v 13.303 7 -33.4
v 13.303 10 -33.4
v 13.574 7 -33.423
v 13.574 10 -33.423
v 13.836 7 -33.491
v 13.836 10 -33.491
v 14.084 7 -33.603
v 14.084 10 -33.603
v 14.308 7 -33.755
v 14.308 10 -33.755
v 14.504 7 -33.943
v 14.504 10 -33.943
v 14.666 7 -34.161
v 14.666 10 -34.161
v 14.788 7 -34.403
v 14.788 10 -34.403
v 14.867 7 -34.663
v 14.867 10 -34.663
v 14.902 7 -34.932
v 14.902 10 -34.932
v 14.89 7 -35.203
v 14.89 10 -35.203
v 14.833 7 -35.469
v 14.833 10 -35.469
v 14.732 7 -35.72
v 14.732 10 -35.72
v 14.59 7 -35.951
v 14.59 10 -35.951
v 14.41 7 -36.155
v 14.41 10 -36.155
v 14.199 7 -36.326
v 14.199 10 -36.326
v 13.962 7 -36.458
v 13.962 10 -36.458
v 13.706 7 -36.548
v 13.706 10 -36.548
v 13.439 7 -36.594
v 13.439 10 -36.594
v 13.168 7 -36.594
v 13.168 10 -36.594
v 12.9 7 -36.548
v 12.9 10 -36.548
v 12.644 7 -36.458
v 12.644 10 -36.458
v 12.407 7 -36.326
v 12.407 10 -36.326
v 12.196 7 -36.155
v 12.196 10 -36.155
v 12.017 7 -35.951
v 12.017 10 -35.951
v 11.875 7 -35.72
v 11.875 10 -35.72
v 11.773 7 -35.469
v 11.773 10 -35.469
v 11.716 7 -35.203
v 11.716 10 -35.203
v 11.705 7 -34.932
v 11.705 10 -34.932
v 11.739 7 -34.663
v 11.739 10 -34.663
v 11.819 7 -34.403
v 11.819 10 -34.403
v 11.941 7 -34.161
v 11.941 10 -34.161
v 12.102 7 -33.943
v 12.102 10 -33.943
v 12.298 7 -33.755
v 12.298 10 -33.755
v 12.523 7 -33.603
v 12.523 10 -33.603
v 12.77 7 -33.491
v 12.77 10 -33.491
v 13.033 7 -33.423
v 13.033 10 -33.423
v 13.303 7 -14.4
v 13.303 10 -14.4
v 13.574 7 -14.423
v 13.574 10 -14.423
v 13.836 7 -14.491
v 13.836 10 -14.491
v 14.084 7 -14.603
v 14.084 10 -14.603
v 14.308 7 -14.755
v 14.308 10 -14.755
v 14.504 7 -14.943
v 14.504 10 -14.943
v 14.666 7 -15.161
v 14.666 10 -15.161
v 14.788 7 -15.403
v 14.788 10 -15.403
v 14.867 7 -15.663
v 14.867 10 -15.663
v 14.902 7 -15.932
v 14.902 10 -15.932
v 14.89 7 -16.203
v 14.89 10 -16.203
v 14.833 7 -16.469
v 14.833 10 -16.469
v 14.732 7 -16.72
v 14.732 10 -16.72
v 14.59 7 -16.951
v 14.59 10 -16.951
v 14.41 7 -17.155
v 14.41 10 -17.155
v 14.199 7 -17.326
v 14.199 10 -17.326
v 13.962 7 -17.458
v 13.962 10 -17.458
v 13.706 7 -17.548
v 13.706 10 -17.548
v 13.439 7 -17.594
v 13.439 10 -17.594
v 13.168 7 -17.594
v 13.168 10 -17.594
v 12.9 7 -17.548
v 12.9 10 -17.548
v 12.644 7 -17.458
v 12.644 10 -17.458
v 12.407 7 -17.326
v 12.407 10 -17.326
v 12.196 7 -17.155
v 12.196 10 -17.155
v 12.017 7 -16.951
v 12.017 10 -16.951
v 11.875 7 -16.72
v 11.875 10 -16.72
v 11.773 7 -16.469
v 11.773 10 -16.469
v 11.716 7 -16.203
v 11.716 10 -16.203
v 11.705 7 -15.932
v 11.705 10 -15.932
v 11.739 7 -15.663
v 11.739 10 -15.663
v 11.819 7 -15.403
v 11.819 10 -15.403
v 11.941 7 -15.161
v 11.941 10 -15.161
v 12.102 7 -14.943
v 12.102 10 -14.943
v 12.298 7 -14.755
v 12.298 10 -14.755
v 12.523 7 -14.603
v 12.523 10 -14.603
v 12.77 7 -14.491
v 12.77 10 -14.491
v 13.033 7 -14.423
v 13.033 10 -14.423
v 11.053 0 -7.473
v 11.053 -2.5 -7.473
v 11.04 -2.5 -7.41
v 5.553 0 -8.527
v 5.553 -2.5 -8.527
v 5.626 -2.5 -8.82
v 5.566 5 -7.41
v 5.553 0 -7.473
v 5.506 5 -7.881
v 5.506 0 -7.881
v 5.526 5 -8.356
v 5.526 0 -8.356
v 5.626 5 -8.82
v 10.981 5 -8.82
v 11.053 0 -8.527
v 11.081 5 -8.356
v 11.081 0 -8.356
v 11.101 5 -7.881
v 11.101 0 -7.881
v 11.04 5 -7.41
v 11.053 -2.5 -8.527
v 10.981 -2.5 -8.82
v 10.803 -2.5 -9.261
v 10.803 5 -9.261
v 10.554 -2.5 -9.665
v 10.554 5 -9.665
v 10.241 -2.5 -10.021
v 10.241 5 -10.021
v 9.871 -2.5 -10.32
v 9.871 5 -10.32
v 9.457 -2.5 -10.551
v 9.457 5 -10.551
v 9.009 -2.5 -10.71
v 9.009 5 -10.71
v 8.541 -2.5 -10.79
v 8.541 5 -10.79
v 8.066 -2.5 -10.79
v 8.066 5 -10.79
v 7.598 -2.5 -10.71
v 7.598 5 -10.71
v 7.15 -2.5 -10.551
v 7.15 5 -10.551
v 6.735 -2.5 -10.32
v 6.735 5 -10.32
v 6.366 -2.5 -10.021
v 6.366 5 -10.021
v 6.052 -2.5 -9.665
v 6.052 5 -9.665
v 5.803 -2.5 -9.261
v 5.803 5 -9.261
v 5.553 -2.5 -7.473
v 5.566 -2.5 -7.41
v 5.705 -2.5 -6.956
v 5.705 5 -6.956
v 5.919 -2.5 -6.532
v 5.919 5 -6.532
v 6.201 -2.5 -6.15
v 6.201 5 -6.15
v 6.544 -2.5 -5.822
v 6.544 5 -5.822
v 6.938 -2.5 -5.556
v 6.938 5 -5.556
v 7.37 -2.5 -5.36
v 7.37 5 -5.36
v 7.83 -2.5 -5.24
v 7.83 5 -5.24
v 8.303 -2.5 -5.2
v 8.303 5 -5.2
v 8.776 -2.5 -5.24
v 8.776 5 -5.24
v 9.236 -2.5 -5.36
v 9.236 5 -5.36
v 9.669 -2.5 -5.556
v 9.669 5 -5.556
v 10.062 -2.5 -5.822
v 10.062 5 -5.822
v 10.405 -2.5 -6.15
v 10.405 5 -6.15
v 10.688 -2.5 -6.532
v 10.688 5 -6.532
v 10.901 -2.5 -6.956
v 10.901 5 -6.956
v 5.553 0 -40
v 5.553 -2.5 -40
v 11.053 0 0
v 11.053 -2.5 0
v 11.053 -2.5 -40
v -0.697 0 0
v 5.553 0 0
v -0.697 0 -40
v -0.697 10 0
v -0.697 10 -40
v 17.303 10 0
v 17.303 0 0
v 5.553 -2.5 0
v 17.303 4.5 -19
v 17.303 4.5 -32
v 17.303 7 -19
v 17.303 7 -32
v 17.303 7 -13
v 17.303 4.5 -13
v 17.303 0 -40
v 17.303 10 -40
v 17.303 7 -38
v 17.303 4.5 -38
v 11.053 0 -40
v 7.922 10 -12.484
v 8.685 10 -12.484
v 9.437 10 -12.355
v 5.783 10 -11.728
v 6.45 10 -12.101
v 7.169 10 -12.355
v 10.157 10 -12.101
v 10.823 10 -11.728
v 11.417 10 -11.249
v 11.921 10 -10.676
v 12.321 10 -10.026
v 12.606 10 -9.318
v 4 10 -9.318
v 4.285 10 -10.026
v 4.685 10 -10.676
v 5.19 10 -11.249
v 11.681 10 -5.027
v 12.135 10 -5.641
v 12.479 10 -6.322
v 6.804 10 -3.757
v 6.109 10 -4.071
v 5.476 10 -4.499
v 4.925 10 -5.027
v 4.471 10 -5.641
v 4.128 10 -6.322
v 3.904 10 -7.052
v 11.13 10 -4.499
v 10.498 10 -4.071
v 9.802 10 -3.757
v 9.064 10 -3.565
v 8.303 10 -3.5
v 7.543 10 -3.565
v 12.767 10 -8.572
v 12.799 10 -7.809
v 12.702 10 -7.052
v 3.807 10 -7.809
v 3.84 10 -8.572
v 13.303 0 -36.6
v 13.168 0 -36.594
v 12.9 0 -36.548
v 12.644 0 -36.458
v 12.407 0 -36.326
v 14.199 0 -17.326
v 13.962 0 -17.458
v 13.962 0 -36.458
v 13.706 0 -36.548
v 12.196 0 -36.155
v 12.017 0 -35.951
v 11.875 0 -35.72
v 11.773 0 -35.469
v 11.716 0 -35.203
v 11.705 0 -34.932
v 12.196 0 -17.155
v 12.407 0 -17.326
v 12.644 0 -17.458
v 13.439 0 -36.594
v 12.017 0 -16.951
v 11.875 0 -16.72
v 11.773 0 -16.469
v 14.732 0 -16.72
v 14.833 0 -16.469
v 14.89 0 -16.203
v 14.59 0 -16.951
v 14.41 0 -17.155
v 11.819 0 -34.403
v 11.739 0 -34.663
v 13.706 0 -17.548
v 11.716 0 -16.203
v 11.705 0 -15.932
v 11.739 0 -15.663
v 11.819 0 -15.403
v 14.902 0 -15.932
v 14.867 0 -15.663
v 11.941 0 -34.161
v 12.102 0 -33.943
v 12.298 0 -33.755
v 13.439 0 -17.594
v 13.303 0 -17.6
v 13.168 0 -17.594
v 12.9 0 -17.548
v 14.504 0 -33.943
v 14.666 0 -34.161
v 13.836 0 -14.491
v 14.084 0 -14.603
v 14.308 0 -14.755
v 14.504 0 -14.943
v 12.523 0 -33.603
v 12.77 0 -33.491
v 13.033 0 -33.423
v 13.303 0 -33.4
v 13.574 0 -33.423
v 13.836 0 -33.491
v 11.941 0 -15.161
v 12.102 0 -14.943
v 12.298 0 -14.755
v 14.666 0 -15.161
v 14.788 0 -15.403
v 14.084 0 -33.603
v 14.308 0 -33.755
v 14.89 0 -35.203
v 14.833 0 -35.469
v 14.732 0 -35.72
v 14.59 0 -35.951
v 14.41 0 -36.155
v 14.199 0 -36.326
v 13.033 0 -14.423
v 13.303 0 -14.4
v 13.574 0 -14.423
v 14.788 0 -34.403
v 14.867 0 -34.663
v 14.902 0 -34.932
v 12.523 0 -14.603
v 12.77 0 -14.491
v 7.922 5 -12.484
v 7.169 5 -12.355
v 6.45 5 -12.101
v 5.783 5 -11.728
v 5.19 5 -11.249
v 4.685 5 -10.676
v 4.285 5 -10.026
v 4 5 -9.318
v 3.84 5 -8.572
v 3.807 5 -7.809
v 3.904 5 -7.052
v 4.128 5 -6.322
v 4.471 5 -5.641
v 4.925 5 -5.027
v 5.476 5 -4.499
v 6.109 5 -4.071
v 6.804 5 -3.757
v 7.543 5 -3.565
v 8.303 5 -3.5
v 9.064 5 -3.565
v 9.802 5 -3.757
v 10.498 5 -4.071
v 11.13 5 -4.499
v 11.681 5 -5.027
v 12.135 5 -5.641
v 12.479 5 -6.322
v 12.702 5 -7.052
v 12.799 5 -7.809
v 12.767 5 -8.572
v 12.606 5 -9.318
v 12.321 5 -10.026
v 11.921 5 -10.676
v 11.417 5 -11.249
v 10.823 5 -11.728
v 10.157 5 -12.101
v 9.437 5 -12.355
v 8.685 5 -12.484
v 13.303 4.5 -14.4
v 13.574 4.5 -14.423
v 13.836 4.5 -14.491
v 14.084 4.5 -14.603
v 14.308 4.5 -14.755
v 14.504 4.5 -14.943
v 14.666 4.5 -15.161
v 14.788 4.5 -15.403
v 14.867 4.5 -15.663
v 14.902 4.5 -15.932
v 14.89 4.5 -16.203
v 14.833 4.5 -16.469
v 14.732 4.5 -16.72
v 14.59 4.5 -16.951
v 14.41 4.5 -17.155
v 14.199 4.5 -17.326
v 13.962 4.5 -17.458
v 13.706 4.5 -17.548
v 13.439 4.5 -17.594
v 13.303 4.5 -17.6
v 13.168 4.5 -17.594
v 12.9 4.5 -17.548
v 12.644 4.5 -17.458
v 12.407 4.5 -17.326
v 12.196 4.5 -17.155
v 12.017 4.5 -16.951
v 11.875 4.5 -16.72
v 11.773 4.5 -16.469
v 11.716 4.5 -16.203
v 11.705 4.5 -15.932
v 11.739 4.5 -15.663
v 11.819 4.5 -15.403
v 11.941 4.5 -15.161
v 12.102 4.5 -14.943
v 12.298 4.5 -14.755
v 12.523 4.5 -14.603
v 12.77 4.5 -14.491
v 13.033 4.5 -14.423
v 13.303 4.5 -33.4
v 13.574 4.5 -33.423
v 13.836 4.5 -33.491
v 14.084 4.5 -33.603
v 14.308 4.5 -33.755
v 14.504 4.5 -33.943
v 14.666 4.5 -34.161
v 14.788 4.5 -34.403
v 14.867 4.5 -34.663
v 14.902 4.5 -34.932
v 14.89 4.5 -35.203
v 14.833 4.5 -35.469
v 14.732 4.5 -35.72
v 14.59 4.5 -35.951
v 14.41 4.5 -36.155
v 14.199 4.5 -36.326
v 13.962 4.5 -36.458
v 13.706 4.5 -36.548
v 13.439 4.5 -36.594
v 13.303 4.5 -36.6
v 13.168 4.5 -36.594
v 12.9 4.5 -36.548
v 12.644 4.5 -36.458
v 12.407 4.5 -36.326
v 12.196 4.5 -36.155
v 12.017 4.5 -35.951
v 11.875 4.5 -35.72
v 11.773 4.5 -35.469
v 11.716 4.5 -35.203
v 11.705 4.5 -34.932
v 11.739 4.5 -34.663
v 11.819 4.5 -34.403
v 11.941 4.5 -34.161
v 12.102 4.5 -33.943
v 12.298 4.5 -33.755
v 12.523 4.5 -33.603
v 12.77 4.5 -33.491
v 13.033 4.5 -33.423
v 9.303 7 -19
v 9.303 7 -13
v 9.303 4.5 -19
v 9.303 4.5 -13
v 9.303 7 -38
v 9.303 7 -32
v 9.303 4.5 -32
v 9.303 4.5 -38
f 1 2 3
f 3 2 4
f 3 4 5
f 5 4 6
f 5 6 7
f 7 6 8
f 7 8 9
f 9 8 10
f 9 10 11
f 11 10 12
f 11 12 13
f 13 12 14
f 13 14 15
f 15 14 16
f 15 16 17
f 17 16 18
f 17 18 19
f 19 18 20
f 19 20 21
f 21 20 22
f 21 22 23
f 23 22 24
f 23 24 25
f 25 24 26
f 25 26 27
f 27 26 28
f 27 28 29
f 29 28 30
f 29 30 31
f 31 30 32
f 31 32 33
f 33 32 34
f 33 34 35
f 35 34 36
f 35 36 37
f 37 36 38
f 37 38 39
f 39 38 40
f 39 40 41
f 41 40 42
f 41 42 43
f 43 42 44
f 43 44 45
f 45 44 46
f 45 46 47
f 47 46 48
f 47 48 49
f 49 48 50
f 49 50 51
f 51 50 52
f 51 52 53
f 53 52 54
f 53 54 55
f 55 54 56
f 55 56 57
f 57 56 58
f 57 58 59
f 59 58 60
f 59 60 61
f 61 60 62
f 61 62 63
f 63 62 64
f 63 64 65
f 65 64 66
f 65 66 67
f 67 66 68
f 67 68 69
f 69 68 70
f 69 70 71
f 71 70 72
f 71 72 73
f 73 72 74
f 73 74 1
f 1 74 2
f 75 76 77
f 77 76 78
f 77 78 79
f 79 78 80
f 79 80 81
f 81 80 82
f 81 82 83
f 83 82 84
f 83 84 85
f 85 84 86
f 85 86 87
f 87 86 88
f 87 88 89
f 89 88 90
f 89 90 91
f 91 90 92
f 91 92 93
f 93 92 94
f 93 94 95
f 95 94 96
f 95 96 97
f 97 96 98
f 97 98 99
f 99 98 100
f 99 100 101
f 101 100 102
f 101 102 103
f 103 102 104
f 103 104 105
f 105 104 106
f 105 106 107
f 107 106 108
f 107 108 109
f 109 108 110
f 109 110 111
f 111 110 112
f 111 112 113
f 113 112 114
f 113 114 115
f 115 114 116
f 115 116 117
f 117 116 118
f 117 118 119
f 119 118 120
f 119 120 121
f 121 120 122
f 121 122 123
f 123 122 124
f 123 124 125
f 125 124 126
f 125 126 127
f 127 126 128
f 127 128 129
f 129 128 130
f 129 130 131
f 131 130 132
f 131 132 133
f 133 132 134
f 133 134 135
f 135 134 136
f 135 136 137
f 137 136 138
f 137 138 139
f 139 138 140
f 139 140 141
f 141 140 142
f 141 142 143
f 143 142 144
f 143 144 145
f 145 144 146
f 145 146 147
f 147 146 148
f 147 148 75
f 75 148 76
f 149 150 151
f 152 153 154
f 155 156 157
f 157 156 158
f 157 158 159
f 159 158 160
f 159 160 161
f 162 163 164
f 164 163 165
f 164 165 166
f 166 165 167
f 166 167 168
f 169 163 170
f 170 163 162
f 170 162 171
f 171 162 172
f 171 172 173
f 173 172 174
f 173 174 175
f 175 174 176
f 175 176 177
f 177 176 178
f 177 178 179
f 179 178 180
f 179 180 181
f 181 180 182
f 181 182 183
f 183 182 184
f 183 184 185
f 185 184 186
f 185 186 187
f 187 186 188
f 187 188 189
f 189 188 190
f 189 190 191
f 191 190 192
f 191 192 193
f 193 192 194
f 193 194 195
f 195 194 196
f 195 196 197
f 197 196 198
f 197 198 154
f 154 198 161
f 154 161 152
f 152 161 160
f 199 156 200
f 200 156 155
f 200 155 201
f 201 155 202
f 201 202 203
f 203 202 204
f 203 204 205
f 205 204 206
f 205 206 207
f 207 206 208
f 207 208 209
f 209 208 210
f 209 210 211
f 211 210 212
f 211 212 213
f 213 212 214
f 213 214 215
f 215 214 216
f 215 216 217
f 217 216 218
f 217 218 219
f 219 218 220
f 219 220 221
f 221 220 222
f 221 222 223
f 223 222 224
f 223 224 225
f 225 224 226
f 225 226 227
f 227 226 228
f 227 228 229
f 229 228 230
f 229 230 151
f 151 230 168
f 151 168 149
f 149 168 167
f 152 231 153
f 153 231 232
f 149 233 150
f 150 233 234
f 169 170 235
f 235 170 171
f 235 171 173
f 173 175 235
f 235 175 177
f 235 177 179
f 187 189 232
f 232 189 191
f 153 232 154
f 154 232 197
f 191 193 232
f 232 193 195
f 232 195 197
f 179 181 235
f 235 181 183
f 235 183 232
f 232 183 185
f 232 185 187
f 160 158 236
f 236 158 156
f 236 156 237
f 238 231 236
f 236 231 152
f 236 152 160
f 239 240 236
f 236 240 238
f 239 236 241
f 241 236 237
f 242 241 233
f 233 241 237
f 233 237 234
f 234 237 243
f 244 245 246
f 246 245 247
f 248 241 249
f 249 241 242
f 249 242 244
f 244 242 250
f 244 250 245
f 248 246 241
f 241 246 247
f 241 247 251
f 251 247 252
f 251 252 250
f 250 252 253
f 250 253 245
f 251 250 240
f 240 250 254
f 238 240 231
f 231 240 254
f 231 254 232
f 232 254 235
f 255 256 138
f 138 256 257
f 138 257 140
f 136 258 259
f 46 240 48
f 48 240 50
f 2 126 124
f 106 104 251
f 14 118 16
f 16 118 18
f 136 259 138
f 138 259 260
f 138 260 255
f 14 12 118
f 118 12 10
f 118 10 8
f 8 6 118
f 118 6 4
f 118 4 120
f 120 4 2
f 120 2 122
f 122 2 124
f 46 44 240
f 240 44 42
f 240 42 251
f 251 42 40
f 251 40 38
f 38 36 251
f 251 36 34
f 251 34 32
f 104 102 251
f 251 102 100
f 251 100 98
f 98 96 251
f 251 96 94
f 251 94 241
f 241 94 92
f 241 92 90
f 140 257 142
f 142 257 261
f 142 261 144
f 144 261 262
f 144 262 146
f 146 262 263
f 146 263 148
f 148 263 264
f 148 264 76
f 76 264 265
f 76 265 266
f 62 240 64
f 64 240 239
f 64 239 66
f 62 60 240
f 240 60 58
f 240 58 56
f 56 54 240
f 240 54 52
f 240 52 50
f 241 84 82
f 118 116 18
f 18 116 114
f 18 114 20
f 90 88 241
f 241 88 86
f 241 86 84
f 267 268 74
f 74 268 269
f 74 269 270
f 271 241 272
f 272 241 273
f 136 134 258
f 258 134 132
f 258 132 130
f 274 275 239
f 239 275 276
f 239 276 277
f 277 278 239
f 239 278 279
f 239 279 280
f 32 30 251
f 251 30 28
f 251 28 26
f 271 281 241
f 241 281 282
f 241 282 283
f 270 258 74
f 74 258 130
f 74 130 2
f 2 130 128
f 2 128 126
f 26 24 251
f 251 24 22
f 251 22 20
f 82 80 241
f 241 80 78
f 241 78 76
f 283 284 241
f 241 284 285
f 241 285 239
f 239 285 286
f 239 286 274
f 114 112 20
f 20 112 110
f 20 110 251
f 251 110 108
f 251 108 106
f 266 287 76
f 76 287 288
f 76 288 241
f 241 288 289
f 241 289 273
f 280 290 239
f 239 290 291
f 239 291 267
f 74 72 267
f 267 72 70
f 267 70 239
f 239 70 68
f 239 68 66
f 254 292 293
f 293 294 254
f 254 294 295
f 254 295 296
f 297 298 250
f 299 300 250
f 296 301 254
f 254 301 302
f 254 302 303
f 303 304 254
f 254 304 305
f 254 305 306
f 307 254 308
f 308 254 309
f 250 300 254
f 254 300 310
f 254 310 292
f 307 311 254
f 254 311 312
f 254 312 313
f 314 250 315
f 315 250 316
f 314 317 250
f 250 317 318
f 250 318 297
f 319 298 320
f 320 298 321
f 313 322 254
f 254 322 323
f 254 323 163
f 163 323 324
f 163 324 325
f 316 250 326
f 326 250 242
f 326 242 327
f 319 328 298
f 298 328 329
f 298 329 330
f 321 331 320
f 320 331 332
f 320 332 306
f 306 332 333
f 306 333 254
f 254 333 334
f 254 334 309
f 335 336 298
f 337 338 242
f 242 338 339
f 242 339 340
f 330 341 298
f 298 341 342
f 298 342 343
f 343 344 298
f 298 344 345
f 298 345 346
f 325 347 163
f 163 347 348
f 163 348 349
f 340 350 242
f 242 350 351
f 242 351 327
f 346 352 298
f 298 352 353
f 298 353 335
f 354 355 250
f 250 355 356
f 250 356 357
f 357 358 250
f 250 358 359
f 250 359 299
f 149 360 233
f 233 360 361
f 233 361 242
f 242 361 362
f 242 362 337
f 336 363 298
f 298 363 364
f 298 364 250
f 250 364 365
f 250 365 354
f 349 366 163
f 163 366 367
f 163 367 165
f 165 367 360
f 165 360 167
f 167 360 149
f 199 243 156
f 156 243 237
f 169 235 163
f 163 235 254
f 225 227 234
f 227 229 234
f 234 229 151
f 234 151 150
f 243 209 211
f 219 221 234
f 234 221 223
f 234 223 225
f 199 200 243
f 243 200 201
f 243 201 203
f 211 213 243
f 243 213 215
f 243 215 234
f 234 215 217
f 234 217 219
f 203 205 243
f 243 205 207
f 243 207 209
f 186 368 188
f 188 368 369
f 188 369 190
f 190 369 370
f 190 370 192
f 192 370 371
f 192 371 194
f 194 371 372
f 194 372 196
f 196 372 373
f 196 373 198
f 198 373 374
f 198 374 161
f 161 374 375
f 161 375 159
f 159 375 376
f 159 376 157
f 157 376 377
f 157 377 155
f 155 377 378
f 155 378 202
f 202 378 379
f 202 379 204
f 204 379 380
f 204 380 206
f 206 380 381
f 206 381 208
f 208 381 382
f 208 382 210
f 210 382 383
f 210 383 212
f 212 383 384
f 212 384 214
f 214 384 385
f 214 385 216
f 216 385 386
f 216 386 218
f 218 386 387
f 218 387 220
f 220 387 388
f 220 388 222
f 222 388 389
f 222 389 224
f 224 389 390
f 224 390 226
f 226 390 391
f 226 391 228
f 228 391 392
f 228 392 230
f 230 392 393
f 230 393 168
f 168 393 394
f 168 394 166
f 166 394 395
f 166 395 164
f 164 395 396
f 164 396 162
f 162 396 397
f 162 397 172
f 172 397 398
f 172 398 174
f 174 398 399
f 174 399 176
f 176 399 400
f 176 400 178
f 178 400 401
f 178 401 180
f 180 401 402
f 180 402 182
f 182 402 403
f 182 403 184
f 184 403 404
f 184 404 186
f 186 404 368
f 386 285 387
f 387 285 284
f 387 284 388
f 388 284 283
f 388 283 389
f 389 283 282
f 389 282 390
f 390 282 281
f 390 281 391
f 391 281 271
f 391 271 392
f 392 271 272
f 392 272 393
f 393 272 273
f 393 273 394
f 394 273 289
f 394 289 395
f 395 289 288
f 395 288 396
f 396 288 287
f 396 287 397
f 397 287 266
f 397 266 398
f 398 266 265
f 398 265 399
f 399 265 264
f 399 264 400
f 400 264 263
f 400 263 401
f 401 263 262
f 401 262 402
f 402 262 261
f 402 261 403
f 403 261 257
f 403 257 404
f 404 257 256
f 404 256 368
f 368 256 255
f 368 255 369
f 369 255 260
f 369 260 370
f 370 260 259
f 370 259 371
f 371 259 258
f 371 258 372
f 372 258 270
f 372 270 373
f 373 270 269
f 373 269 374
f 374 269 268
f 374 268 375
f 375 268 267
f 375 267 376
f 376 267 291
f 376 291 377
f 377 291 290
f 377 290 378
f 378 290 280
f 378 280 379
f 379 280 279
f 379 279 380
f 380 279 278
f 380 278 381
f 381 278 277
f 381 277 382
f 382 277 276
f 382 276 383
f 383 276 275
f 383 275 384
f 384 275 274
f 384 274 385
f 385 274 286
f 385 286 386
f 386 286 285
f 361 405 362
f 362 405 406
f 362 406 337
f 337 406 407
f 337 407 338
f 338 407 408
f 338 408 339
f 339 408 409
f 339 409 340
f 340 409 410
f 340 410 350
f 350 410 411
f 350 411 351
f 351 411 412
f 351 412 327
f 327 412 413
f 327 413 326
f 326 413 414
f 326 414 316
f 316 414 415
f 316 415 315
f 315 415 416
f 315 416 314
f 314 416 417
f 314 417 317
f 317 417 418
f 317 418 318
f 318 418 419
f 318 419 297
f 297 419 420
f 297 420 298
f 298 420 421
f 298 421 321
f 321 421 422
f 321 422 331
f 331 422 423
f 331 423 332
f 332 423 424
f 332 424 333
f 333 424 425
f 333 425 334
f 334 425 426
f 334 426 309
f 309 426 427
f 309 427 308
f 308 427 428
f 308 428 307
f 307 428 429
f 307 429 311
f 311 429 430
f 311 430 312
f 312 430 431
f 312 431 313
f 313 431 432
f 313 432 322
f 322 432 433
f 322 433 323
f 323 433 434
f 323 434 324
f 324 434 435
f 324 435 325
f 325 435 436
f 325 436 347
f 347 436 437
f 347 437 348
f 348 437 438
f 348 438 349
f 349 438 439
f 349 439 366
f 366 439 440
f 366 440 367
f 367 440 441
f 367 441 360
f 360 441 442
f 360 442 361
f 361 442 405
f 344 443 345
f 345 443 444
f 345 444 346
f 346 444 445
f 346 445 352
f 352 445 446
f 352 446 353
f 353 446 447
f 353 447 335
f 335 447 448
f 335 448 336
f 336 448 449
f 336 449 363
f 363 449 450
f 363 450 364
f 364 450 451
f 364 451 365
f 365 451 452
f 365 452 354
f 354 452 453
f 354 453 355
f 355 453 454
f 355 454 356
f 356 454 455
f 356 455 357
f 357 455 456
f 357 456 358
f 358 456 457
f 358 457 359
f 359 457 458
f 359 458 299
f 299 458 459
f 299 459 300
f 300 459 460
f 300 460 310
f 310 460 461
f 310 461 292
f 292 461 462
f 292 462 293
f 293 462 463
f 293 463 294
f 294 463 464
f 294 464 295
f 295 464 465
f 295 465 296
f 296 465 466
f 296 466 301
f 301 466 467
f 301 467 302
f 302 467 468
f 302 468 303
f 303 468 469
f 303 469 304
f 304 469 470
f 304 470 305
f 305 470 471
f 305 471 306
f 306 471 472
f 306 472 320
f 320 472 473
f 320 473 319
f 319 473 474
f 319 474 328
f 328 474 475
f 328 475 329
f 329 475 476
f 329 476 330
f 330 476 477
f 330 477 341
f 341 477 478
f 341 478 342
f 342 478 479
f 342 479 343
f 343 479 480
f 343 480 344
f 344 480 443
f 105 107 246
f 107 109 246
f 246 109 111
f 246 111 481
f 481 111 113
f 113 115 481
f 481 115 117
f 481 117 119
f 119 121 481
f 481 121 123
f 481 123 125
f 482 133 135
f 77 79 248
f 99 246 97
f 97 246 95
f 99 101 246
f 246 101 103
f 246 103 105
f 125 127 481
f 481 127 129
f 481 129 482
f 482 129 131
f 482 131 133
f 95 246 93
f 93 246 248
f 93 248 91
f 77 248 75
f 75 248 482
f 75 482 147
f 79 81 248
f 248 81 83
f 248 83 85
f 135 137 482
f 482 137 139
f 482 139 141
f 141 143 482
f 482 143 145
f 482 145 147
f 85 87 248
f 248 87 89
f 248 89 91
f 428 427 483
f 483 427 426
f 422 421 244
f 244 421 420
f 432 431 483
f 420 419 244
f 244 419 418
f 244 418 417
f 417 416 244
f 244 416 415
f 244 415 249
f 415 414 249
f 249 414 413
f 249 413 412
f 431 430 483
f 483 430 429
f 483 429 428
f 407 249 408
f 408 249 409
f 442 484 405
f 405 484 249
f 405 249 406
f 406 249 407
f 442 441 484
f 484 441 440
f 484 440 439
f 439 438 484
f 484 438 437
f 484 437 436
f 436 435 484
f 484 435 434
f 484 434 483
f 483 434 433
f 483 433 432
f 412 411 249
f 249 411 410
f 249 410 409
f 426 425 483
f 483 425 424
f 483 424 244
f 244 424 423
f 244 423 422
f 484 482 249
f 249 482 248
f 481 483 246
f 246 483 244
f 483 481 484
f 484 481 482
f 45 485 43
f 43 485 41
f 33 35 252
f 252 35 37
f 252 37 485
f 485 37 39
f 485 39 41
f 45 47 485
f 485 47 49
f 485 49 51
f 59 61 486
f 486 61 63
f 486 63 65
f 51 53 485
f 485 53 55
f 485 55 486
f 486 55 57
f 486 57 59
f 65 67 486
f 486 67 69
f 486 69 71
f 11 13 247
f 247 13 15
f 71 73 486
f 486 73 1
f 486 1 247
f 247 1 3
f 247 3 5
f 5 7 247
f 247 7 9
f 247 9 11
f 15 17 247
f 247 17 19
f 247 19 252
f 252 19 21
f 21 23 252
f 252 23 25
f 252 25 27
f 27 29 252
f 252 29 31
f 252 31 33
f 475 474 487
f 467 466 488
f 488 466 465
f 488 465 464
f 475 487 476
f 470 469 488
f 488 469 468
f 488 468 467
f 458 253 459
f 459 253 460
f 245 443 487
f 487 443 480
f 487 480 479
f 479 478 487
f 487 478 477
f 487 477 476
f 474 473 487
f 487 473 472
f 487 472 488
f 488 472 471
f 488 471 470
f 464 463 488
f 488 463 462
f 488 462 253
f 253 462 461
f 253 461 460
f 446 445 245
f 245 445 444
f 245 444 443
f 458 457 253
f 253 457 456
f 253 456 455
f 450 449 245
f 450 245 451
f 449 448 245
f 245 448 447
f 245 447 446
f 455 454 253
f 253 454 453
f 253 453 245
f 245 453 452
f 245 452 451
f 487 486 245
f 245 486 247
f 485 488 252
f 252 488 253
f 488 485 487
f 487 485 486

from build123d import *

# Parameters (mm, degrees)
SKETCH1_W           = 18
SKETCH1_H           = 40
BOSS_EXTRUDE1_DEPTH = 10
SKETCH3_W           = 5.5
SKETCH3_H           = 40
BOSS_EXTRUDE5_DEPTH = 2.5
SKETCH2_R           = 2.8
CUT_EXTRUDE1_DEPTH  = 13.5
SKETCH4_R           = 4.5
CUT_EXTRUDE2_DEPTH  = 5
SKETCH5_R           = 1.6
CUT_EXTRUDE3_DEPTH  = 13.5
SKETCH6_W           = 6
SKETCH6_H           = 2.5
CUT_EXTRUDE4_DEPTH  = 8


with BuildPart() as part:
    # Sketch1 → Boss-Extrude1 (new body)
    with BuildSketch(Plane(origin=(0, 0, 0), x_dir=(1, 0, 0), z_dir=(0, 1, 0))):
        with Locations((8.30324178, 20)):
            Rectangle(SKETCH1_W, SKETCH1_H)
    extrude(amount=BOSS_EXTRUDE1_DEPTH)

    # Sketch3 → Boss-Extrude5 (add)
    with BuildSketch(Plane.XZ):
        with Locations((8.30324178, -20)):
            Rectangle(SKETCH3_W, SKETCH3_H)
    extrude(amount=BOSS_EXTRUDE5_DEPTH)

    # Sketch2 → Cut-Extrude1 (cut, through all)
    with BuildSketch(Plane(origin=(0, 10, 0), x_dir=(1, 0, 0), z_dir=(0, 1, 0))):
        with Locations((8.30324178, 8)):
            Circle(SKETCH2_R)
    extrude(amount=-CUT_EXTRUDE1_DEPTH, mode=Mode.SUBTRACT)

    # Sketch4 → Cut-Extrude2 (cut)
    with BuildSketch(Plane(origin=(0, 10, 0), x_dir=(1, 0, 0), z_dir=(0, 1, 0))):
        with Locations((8.30324178, 8)):
            Circle(SKETCH4_R)
    extrude(amount=-CUT_EXTRUDE2_DEPTH, mode=Mode.SUBTRACT)

    # Sketch5 → Cut-Extrude3 (cut, through all)
    with BuildSketch(Plane(origin=(0, 10, 0), x_dir=(1, 0, 0), z_dir=(0, 1, 0))):
        with Locations((13.30324178, 16)):
            Circle(SKETCH5_R)
        with Locations((13.30324178, 35)):
            Circle(SKETCH5_R)
    extrude(amount=-CUT_EXTRUDE3_DEPTH, mode=Mode.SUBTRACT)

    # Sketch6 → Cut-Extrude4 (cut)
    with BuildSketch(Plane(origin=(17.30324178, 0, 0), x_dir=(0, 0, -1), z_dir=(1, 0, 0))):
        with Locations((16, 5.75)):
            Rectangle(SKETCH6_W, SKETCH6_H)
        with Locations((35, 5.75)):
            Rectangle(SKETCH6_W, SKETCH6_H)
    extrude(amount=-CUT_EXTRUDE4_DEPTH, mode=Mode.SUBTRACT)


solid = part.part
